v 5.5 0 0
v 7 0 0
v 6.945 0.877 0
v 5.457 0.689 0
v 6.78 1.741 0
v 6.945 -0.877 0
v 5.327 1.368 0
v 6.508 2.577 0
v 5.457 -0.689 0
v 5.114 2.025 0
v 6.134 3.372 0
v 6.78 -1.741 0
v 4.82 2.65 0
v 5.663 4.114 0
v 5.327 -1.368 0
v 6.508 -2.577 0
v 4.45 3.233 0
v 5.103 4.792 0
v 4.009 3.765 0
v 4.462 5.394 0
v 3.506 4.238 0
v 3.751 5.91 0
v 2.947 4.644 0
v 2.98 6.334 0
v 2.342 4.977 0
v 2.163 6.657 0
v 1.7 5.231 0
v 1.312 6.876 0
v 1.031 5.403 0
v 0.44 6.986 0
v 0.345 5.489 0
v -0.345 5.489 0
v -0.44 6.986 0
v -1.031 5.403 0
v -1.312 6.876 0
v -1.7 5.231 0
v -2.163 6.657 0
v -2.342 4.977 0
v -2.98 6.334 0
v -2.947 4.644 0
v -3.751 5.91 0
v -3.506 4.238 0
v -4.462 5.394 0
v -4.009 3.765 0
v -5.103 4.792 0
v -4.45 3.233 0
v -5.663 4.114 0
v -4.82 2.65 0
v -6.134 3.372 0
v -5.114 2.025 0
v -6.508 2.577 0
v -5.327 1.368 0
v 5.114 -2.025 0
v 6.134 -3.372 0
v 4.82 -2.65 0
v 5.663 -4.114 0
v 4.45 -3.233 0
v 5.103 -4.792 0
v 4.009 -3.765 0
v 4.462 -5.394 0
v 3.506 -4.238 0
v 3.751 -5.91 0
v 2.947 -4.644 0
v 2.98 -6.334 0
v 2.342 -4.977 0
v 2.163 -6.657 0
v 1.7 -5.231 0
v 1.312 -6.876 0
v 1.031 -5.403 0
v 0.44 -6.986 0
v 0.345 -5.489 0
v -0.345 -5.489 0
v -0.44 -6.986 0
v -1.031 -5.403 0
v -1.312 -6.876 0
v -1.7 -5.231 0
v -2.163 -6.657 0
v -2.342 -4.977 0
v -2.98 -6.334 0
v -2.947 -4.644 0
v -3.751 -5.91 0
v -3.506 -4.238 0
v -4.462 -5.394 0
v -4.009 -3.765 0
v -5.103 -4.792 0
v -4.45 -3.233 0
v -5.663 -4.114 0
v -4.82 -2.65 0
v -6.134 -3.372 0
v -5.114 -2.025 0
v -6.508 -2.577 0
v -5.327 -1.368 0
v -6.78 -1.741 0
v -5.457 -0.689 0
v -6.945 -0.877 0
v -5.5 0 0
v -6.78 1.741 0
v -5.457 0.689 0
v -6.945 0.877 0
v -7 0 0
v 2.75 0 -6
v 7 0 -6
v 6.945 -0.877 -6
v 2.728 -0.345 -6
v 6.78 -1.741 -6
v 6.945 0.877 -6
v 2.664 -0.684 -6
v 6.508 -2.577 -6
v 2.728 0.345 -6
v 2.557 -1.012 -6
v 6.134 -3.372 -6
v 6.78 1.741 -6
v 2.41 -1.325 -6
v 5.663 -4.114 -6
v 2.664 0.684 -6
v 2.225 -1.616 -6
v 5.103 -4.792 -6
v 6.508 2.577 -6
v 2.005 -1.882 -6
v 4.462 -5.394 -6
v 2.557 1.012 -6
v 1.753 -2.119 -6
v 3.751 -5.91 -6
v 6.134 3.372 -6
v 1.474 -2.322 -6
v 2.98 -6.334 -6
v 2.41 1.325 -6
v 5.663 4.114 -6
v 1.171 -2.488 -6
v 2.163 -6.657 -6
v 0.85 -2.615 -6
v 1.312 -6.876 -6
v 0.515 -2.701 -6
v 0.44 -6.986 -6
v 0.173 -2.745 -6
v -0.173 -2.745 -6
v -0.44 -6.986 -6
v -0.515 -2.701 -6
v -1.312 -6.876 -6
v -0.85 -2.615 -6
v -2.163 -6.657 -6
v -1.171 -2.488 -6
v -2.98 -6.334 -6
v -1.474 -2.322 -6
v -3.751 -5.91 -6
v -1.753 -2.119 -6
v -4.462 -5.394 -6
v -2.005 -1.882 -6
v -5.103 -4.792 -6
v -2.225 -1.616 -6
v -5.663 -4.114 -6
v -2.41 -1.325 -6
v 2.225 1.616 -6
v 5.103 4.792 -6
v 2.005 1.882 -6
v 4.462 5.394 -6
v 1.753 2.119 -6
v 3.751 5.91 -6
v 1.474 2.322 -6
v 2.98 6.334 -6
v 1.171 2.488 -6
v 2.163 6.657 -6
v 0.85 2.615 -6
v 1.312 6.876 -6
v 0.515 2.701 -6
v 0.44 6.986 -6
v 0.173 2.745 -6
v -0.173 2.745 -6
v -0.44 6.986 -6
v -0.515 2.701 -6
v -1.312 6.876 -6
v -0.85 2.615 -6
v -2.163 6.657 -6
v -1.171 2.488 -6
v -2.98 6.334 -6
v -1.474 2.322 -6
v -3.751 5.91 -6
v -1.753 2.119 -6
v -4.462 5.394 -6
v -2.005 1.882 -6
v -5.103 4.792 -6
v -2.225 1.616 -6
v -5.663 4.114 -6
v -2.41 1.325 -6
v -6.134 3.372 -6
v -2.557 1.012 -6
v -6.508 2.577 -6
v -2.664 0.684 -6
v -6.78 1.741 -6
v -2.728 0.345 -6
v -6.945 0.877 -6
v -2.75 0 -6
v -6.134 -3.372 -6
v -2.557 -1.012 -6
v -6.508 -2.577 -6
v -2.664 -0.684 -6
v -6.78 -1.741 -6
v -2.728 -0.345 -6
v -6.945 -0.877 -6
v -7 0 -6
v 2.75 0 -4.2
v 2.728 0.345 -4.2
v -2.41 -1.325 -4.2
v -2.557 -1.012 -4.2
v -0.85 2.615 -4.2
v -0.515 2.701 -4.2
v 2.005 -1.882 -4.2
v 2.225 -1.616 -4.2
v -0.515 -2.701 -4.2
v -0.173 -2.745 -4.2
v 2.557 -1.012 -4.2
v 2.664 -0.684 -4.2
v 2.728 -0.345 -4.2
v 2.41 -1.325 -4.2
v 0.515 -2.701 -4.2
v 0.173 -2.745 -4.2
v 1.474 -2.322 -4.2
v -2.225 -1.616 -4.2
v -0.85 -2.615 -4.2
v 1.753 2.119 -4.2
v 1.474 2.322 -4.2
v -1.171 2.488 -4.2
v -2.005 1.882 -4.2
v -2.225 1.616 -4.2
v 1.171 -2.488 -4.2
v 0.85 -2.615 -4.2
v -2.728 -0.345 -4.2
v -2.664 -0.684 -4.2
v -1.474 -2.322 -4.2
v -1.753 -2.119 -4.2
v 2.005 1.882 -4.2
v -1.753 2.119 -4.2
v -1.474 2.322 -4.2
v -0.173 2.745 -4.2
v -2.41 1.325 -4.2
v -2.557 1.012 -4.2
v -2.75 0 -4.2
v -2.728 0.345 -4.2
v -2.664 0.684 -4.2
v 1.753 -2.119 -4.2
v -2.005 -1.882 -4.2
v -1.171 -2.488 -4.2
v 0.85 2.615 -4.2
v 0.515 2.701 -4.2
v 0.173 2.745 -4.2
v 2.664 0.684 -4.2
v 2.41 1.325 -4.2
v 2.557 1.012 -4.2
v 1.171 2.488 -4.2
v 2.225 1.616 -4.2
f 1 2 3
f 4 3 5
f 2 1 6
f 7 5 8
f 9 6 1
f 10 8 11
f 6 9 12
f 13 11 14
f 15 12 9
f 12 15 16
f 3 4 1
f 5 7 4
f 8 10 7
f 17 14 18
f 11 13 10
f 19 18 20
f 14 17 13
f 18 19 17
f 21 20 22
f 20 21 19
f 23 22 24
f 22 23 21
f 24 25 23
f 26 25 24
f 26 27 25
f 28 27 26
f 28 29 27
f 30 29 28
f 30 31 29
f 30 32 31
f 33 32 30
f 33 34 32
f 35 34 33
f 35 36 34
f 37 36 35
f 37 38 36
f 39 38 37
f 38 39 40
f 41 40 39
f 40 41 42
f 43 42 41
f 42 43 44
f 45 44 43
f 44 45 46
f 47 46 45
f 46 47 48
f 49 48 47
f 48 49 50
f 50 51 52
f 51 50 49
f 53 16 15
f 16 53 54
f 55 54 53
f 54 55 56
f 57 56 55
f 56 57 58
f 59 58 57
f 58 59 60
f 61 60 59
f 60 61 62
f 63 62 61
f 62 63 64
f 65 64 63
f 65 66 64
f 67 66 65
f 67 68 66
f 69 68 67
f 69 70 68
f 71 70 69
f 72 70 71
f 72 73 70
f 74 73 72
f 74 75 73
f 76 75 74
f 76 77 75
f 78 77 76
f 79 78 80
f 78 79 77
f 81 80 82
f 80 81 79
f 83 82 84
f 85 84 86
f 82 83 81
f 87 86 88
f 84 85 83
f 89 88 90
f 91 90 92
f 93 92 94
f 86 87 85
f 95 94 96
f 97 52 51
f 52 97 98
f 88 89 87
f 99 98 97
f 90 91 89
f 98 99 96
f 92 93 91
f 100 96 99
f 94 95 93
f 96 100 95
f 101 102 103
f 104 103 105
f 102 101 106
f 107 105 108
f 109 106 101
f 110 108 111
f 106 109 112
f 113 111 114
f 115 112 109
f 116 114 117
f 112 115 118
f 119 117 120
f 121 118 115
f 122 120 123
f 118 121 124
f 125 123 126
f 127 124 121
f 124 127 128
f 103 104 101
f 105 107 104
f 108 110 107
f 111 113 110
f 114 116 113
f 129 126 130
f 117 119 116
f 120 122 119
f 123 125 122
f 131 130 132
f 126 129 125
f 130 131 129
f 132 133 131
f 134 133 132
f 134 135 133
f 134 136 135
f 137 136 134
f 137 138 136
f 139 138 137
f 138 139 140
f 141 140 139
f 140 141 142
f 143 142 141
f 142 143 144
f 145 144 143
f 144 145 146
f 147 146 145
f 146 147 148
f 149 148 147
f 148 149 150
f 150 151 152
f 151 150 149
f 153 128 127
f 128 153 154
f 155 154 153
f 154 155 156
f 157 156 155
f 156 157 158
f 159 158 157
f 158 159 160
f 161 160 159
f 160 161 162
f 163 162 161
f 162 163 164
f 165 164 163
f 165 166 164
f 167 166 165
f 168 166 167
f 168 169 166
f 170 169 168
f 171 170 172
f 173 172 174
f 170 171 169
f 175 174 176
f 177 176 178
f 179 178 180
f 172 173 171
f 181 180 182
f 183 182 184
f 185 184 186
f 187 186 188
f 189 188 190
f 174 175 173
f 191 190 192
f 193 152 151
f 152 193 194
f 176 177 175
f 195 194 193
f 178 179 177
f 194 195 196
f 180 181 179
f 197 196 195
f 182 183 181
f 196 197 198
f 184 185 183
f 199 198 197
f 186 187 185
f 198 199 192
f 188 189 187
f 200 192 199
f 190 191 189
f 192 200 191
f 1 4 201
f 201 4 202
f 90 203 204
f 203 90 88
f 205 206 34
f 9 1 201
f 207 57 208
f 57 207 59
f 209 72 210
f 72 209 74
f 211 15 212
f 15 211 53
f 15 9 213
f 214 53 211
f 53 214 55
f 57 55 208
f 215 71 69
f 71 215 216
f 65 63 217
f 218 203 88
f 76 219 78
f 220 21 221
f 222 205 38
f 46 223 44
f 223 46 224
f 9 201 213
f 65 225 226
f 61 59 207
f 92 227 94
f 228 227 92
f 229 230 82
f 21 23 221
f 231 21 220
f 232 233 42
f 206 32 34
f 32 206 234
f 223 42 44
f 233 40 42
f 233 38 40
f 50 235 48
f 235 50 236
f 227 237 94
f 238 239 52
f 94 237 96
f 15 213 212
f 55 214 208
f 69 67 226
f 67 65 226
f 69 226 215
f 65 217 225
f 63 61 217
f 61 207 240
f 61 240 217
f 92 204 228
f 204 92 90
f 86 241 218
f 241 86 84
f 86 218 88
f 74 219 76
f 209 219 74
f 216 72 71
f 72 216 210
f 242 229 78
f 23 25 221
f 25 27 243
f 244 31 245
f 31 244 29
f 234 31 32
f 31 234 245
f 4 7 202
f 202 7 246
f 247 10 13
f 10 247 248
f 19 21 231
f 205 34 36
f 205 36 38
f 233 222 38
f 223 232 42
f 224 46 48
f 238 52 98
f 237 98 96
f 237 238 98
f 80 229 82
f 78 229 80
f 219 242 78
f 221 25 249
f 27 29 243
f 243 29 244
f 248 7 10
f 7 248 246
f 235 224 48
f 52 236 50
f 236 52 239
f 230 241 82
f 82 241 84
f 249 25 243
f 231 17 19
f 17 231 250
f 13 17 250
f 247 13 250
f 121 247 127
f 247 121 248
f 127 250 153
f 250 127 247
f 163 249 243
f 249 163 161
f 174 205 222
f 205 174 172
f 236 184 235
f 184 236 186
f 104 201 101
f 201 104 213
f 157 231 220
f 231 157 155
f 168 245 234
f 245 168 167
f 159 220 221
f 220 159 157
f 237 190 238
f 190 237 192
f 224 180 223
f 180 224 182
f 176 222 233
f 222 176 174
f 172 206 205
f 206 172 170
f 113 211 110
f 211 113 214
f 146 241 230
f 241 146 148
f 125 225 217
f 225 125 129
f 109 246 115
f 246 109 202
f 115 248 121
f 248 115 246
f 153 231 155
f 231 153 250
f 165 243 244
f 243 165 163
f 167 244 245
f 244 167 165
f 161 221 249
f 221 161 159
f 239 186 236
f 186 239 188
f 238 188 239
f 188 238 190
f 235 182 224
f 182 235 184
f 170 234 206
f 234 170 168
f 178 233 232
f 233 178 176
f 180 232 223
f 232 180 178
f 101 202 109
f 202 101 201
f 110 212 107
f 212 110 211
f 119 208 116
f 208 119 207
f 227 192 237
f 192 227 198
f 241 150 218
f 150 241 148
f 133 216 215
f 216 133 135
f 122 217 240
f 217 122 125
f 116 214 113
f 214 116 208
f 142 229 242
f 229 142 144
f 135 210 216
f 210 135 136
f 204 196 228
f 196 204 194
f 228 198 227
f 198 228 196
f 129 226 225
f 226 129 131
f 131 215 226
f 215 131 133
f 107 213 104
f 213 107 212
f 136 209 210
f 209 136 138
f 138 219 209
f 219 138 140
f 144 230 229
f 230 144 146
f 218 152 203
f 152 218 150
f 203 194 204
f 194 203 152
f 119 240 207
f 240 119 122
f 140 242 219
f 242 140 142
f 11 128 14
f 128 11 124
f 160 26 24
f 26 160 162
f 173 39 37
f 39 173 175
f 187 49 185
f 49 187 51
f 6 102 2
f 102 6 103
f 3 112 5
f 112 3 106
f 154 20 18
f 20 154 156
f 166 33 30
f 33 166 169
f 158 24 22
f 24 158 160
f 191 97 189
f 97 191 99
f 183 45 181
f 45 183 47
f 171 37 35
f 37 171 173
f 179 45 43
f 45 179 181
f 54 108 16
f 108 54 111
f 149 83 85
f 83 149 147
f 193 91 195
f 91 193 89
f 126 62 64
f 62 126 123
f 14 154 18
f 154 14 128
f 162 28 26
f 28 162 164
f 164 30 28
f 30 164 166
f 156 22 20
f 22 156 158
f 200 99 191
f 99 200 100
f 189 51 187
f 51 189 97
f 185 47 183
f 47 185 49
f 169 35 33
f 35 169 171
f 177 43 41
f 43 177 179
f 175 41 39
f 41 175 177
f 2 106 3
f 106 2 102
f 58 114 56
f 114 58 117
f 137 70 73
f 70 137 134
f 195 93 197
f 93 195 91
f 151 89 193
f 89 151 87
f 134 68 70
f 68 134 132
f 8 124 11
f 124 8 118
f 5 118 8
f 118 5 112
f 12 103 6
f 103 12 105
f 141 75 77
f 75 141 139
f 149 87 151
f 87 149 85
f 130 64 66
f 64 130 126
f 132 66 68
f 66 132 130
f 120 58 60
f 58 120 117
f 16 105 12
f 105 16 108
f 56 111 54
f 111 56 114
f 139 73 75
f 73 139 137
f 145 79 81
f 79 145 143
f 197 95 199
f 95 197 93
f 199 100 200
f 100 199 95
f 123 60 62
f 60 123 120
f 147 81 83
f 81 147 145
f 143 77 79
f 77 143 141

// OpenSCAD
$fn = 50;


difference() {
	union() {
		translate(v = [0, 0, -6.0000000000]) {
			cylinder(h = 6, r = 7.0000000000);
		}
		cylinder(h = 0, r = 17.0000000000);
	}
	union() {
		translate(v = [0, 0, 0]) {
			rotate(a = [0, 0, 0]) {
				difference() {
					union() {
						#translate(v = [0, 0, -6.0000000000]) {
							cylinder(h = 6, r = 2.2500000000);
						}
						#translate(v = [0, 0, -4.2000000000]) {
							cylinder(h = 4.2000000000, r1 = 2.7500000000, r2 = 5.5000000000);
						}
						#translate(v = [0, 0, -6.0000000000]) {
							cylinder(h = 6, r = 2.7500000000);
						}
						#translate(v = [0, 0, -6.0000000000]) {
							cylinder(h = 6, r = 2.2500000000);
						}
					}
					union();
				}
			}
		}
	}
}
